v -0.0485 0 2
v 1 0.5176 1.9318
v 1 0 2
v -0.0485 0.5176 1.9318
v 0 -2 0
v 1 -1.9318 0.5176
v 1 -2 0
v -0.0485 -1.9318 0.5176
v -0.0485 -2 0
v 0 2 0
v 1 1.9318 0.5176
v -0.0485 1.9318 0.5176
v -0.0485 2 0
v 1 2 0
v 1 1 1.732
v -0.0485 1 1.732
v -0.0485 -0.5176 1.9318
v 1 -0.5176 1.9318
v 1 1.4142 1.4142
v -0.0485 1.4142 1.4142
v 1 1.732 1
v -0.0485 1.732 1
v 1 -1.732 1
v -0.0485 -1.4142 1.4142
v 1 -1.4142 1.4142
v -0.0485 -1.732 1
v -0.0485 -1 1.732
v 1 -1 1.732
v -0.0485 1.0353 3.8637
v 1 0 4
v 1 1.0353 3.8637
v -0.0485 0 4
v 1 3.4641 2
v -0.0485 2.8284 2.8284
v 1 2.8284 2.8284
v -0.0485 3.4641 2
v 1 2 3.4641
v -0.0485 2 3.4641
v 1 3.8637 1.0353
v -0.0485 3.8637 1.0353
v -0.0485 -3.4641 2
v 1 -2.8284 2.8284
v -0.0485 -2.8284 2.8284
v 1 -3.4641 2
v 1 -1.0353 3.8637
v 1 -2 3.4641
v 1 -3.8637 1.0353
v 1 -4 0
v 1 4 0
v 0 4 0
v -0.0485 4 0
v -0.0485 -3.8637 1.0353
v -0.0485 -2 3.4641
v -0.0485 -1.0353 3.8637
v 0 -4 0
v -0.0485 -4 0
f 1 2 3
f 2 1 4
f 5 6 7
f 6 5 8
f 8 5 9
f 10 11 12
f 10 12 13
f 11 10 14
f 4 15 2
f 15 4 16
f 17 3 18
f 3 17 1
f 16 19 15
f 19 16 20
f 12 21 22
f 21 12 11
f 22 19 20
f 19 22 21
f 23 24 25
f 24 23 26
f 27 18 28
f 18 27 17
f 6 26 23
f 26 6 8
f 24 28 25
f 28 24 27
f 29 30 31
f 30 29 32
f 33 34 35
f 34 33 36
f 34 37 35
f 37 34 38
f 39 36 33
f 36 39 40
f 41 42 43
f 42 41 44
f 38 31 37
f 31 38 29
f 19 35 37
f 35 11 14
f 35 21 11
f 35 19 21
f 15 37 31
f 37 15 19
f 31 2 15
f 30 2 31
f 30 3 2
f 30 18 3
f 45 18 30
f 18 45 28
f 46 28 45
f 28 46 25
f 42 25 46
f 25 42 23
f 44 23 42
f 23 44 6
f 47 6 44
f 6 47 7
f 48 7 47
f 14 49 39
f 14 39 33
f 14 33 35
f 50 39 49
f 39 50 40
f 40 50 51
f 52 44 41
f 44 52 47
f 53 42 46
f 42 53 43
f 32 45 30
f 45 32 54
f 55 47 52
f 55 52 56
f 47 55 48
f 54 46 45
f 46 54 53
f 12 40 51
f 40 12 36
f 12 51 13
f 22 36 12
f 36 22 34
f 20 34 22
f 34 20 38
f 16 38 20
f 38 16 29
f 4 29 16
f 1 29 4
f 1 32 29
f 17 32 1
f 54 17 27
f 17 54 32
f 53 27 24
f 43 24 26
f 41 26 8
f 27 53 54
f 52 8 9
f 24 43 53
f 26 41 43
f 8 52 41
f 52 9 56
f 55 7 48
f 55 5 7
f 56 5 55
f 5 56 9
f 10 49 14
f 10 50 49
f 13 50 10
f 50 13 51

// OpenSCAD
// file: ../build_environments.scad
// build_environments.scad: modules to build level sections
//

module pool(diameter=10.0, wall_height=2.0, step_width=3.0, connections=[])
{
    difference() {
        union() {
        difference() {
            cylinder(h=0.5,r1=diameter+step_width,r2=diameter+step_width,$fn=48);
            translate([0,0,-0.1])
                cylinder(h=0.7,r1=diameter,r2=diameter,$fn=48);
        }
        difference() {
            cylinder(h=wall_height,r1=diameter+step_width+1.0,r2=diameter+step_width+1.0,$fn=48);
            translate([0,0,-0.1])
                cylinder(h=wall_height+0.2,r1=diameter+step_width,r2=diameter+step_width,$fn=48);
        }
        }
    
        for (c = connections)
        {
            rotate([0,90,0]) {
                angle = atan2(c[1],c[0]);
                rotate([-angle,0,0]) {
                    cylinder(h=diameter+5.0,r1=c[2],r2=c[2],$fn=48);
                }
            }
        }
    }
}

module straight(length=10.0, width=2.0, dy1=0.0, dy2=0.0, dz=0.0)
{
    dims = [0, 0, 0, 0, 0, (dz/length)];
    matrix = [
        [ 1, dims[0], dims[1], 0 ],
        [ dims[2], 1, dims[4], 0 ],
        [ dims[5], dims[3], 1, 0 ],
        [ 0, 0, 0, 1 ]
    ];
    multmatrix(matrix)
    difference() {
        translate([dy1,0,0])
        union() {
            rotate([0,90,0]) {
                difference() {
                    cylinder(h=(length-dy1-dy2),r1=width+1.0,r2=width+1.0,$fn=24);
                    translate([0,0,-0.1])
                        cylinder(h=(length-dy1-dy2+0.2),r1=width,r2=width,$fn=24);
                }
                difference() {
                    cylinder(h=1.0,r1=width+2.0,r2=width+2.0,$fn=24);
                    translate([0,0,-0.1])
                        cylinder(h=1.2,r1=width,r2=width,$fn=24);
                }
                translate([0,0,(length-dy1-dy2)-1.0]) {
                    difference() {
                        cylinder(h=1.0,r1=width+2.0,r2=width+2.0,$fn=24);
                        translate([0,0,-0.1])
                            cylinder(h=1.2,r1=width,r2=width,$fn=24);
                    }
                }
            }
        }
        translate([0,0,-(2*width+4.0)/2])
            cube([3*length,3*length,2*width+4.0],center=true);
    }
}

module curve(p0=[0,0], center=[0,0], dir=1, angle=0.0, width=2.0)
{
    radius = sqrt((p0[0]-center[0])*(p0[0]-center[0]) + (p0[1]-center[1])*(p0[1]-center[1]));
    if (dir == 0) {
        difference() {
            rotate([0,0,-90])
            difference() {
                rotate_extrude(angle = angle, convexity = 10, $fn=32)
                    translate([radius, 0, 0])
                        circle(r = width+1.0,$fn=24);
                rotate([0,0,-1.0])
                    rotate_extrude(angle = angle+2.0, convexity = 10, $fn=32)
                        translate([radius, 0, 0])
                            circle(r = width,$fn=24);
            }
            translate([0,0,-(2*width+4.0)/2])
                cube([5*radius,5*radius,2*width+4.0],center=true);
        }
    }
    else {
        difference() {
            rotate([0,0,90])
            difference() {
                rotate_extrude(angle = -angle, convexity = 10, $fn=32)
                    translate([radius, 0, 0])
                        circle(r = width+1.0,$fn=24);
                rotate([0,0,1.0])
                    rotate_extrude(angle = -angle-2.0, convexity = 10, $fn=32)
                        translate([radius, 0, 0])
                            circle(r = width,$fn=24);
            }
            translate([0,0,-(2*width+4.0)/2])
                cube([5*radius,5*radius,2*width+4.0],center=true);
        }
    }

}

// test pool
//pool(diameter=12.0000, wall_height=3.0000, step_width=3.0000, connections=[[0.0000,-26.0000,2.0000], [23.6074,0.0000,2.0000]]);

// test straight, slope
//straight(length=26.0000, width=2.0000, dy1=11.8322, dy2=6.7082, dz=0.0000);
//straight(length=29.1549, width=12.0000, dy1=0.0000, dy2=0.0000, dz=-15.0000);

// test curve
//curve(p0=[23.6074, 0.0000], center=[23.6074, 5.0000], dir=0, angle=60.1011, width=2.0000);
//curve(p0=[33.6426, 12.4219], center=[37.9771, 9.9295], dir=1, angle=120.4627, width=2.0000);
// main file
use <../build_environments.scad>;
straight(length=8.6975, width=2.0000, dy1=0.0000, dy2=7.7460, dz=0.0000);
